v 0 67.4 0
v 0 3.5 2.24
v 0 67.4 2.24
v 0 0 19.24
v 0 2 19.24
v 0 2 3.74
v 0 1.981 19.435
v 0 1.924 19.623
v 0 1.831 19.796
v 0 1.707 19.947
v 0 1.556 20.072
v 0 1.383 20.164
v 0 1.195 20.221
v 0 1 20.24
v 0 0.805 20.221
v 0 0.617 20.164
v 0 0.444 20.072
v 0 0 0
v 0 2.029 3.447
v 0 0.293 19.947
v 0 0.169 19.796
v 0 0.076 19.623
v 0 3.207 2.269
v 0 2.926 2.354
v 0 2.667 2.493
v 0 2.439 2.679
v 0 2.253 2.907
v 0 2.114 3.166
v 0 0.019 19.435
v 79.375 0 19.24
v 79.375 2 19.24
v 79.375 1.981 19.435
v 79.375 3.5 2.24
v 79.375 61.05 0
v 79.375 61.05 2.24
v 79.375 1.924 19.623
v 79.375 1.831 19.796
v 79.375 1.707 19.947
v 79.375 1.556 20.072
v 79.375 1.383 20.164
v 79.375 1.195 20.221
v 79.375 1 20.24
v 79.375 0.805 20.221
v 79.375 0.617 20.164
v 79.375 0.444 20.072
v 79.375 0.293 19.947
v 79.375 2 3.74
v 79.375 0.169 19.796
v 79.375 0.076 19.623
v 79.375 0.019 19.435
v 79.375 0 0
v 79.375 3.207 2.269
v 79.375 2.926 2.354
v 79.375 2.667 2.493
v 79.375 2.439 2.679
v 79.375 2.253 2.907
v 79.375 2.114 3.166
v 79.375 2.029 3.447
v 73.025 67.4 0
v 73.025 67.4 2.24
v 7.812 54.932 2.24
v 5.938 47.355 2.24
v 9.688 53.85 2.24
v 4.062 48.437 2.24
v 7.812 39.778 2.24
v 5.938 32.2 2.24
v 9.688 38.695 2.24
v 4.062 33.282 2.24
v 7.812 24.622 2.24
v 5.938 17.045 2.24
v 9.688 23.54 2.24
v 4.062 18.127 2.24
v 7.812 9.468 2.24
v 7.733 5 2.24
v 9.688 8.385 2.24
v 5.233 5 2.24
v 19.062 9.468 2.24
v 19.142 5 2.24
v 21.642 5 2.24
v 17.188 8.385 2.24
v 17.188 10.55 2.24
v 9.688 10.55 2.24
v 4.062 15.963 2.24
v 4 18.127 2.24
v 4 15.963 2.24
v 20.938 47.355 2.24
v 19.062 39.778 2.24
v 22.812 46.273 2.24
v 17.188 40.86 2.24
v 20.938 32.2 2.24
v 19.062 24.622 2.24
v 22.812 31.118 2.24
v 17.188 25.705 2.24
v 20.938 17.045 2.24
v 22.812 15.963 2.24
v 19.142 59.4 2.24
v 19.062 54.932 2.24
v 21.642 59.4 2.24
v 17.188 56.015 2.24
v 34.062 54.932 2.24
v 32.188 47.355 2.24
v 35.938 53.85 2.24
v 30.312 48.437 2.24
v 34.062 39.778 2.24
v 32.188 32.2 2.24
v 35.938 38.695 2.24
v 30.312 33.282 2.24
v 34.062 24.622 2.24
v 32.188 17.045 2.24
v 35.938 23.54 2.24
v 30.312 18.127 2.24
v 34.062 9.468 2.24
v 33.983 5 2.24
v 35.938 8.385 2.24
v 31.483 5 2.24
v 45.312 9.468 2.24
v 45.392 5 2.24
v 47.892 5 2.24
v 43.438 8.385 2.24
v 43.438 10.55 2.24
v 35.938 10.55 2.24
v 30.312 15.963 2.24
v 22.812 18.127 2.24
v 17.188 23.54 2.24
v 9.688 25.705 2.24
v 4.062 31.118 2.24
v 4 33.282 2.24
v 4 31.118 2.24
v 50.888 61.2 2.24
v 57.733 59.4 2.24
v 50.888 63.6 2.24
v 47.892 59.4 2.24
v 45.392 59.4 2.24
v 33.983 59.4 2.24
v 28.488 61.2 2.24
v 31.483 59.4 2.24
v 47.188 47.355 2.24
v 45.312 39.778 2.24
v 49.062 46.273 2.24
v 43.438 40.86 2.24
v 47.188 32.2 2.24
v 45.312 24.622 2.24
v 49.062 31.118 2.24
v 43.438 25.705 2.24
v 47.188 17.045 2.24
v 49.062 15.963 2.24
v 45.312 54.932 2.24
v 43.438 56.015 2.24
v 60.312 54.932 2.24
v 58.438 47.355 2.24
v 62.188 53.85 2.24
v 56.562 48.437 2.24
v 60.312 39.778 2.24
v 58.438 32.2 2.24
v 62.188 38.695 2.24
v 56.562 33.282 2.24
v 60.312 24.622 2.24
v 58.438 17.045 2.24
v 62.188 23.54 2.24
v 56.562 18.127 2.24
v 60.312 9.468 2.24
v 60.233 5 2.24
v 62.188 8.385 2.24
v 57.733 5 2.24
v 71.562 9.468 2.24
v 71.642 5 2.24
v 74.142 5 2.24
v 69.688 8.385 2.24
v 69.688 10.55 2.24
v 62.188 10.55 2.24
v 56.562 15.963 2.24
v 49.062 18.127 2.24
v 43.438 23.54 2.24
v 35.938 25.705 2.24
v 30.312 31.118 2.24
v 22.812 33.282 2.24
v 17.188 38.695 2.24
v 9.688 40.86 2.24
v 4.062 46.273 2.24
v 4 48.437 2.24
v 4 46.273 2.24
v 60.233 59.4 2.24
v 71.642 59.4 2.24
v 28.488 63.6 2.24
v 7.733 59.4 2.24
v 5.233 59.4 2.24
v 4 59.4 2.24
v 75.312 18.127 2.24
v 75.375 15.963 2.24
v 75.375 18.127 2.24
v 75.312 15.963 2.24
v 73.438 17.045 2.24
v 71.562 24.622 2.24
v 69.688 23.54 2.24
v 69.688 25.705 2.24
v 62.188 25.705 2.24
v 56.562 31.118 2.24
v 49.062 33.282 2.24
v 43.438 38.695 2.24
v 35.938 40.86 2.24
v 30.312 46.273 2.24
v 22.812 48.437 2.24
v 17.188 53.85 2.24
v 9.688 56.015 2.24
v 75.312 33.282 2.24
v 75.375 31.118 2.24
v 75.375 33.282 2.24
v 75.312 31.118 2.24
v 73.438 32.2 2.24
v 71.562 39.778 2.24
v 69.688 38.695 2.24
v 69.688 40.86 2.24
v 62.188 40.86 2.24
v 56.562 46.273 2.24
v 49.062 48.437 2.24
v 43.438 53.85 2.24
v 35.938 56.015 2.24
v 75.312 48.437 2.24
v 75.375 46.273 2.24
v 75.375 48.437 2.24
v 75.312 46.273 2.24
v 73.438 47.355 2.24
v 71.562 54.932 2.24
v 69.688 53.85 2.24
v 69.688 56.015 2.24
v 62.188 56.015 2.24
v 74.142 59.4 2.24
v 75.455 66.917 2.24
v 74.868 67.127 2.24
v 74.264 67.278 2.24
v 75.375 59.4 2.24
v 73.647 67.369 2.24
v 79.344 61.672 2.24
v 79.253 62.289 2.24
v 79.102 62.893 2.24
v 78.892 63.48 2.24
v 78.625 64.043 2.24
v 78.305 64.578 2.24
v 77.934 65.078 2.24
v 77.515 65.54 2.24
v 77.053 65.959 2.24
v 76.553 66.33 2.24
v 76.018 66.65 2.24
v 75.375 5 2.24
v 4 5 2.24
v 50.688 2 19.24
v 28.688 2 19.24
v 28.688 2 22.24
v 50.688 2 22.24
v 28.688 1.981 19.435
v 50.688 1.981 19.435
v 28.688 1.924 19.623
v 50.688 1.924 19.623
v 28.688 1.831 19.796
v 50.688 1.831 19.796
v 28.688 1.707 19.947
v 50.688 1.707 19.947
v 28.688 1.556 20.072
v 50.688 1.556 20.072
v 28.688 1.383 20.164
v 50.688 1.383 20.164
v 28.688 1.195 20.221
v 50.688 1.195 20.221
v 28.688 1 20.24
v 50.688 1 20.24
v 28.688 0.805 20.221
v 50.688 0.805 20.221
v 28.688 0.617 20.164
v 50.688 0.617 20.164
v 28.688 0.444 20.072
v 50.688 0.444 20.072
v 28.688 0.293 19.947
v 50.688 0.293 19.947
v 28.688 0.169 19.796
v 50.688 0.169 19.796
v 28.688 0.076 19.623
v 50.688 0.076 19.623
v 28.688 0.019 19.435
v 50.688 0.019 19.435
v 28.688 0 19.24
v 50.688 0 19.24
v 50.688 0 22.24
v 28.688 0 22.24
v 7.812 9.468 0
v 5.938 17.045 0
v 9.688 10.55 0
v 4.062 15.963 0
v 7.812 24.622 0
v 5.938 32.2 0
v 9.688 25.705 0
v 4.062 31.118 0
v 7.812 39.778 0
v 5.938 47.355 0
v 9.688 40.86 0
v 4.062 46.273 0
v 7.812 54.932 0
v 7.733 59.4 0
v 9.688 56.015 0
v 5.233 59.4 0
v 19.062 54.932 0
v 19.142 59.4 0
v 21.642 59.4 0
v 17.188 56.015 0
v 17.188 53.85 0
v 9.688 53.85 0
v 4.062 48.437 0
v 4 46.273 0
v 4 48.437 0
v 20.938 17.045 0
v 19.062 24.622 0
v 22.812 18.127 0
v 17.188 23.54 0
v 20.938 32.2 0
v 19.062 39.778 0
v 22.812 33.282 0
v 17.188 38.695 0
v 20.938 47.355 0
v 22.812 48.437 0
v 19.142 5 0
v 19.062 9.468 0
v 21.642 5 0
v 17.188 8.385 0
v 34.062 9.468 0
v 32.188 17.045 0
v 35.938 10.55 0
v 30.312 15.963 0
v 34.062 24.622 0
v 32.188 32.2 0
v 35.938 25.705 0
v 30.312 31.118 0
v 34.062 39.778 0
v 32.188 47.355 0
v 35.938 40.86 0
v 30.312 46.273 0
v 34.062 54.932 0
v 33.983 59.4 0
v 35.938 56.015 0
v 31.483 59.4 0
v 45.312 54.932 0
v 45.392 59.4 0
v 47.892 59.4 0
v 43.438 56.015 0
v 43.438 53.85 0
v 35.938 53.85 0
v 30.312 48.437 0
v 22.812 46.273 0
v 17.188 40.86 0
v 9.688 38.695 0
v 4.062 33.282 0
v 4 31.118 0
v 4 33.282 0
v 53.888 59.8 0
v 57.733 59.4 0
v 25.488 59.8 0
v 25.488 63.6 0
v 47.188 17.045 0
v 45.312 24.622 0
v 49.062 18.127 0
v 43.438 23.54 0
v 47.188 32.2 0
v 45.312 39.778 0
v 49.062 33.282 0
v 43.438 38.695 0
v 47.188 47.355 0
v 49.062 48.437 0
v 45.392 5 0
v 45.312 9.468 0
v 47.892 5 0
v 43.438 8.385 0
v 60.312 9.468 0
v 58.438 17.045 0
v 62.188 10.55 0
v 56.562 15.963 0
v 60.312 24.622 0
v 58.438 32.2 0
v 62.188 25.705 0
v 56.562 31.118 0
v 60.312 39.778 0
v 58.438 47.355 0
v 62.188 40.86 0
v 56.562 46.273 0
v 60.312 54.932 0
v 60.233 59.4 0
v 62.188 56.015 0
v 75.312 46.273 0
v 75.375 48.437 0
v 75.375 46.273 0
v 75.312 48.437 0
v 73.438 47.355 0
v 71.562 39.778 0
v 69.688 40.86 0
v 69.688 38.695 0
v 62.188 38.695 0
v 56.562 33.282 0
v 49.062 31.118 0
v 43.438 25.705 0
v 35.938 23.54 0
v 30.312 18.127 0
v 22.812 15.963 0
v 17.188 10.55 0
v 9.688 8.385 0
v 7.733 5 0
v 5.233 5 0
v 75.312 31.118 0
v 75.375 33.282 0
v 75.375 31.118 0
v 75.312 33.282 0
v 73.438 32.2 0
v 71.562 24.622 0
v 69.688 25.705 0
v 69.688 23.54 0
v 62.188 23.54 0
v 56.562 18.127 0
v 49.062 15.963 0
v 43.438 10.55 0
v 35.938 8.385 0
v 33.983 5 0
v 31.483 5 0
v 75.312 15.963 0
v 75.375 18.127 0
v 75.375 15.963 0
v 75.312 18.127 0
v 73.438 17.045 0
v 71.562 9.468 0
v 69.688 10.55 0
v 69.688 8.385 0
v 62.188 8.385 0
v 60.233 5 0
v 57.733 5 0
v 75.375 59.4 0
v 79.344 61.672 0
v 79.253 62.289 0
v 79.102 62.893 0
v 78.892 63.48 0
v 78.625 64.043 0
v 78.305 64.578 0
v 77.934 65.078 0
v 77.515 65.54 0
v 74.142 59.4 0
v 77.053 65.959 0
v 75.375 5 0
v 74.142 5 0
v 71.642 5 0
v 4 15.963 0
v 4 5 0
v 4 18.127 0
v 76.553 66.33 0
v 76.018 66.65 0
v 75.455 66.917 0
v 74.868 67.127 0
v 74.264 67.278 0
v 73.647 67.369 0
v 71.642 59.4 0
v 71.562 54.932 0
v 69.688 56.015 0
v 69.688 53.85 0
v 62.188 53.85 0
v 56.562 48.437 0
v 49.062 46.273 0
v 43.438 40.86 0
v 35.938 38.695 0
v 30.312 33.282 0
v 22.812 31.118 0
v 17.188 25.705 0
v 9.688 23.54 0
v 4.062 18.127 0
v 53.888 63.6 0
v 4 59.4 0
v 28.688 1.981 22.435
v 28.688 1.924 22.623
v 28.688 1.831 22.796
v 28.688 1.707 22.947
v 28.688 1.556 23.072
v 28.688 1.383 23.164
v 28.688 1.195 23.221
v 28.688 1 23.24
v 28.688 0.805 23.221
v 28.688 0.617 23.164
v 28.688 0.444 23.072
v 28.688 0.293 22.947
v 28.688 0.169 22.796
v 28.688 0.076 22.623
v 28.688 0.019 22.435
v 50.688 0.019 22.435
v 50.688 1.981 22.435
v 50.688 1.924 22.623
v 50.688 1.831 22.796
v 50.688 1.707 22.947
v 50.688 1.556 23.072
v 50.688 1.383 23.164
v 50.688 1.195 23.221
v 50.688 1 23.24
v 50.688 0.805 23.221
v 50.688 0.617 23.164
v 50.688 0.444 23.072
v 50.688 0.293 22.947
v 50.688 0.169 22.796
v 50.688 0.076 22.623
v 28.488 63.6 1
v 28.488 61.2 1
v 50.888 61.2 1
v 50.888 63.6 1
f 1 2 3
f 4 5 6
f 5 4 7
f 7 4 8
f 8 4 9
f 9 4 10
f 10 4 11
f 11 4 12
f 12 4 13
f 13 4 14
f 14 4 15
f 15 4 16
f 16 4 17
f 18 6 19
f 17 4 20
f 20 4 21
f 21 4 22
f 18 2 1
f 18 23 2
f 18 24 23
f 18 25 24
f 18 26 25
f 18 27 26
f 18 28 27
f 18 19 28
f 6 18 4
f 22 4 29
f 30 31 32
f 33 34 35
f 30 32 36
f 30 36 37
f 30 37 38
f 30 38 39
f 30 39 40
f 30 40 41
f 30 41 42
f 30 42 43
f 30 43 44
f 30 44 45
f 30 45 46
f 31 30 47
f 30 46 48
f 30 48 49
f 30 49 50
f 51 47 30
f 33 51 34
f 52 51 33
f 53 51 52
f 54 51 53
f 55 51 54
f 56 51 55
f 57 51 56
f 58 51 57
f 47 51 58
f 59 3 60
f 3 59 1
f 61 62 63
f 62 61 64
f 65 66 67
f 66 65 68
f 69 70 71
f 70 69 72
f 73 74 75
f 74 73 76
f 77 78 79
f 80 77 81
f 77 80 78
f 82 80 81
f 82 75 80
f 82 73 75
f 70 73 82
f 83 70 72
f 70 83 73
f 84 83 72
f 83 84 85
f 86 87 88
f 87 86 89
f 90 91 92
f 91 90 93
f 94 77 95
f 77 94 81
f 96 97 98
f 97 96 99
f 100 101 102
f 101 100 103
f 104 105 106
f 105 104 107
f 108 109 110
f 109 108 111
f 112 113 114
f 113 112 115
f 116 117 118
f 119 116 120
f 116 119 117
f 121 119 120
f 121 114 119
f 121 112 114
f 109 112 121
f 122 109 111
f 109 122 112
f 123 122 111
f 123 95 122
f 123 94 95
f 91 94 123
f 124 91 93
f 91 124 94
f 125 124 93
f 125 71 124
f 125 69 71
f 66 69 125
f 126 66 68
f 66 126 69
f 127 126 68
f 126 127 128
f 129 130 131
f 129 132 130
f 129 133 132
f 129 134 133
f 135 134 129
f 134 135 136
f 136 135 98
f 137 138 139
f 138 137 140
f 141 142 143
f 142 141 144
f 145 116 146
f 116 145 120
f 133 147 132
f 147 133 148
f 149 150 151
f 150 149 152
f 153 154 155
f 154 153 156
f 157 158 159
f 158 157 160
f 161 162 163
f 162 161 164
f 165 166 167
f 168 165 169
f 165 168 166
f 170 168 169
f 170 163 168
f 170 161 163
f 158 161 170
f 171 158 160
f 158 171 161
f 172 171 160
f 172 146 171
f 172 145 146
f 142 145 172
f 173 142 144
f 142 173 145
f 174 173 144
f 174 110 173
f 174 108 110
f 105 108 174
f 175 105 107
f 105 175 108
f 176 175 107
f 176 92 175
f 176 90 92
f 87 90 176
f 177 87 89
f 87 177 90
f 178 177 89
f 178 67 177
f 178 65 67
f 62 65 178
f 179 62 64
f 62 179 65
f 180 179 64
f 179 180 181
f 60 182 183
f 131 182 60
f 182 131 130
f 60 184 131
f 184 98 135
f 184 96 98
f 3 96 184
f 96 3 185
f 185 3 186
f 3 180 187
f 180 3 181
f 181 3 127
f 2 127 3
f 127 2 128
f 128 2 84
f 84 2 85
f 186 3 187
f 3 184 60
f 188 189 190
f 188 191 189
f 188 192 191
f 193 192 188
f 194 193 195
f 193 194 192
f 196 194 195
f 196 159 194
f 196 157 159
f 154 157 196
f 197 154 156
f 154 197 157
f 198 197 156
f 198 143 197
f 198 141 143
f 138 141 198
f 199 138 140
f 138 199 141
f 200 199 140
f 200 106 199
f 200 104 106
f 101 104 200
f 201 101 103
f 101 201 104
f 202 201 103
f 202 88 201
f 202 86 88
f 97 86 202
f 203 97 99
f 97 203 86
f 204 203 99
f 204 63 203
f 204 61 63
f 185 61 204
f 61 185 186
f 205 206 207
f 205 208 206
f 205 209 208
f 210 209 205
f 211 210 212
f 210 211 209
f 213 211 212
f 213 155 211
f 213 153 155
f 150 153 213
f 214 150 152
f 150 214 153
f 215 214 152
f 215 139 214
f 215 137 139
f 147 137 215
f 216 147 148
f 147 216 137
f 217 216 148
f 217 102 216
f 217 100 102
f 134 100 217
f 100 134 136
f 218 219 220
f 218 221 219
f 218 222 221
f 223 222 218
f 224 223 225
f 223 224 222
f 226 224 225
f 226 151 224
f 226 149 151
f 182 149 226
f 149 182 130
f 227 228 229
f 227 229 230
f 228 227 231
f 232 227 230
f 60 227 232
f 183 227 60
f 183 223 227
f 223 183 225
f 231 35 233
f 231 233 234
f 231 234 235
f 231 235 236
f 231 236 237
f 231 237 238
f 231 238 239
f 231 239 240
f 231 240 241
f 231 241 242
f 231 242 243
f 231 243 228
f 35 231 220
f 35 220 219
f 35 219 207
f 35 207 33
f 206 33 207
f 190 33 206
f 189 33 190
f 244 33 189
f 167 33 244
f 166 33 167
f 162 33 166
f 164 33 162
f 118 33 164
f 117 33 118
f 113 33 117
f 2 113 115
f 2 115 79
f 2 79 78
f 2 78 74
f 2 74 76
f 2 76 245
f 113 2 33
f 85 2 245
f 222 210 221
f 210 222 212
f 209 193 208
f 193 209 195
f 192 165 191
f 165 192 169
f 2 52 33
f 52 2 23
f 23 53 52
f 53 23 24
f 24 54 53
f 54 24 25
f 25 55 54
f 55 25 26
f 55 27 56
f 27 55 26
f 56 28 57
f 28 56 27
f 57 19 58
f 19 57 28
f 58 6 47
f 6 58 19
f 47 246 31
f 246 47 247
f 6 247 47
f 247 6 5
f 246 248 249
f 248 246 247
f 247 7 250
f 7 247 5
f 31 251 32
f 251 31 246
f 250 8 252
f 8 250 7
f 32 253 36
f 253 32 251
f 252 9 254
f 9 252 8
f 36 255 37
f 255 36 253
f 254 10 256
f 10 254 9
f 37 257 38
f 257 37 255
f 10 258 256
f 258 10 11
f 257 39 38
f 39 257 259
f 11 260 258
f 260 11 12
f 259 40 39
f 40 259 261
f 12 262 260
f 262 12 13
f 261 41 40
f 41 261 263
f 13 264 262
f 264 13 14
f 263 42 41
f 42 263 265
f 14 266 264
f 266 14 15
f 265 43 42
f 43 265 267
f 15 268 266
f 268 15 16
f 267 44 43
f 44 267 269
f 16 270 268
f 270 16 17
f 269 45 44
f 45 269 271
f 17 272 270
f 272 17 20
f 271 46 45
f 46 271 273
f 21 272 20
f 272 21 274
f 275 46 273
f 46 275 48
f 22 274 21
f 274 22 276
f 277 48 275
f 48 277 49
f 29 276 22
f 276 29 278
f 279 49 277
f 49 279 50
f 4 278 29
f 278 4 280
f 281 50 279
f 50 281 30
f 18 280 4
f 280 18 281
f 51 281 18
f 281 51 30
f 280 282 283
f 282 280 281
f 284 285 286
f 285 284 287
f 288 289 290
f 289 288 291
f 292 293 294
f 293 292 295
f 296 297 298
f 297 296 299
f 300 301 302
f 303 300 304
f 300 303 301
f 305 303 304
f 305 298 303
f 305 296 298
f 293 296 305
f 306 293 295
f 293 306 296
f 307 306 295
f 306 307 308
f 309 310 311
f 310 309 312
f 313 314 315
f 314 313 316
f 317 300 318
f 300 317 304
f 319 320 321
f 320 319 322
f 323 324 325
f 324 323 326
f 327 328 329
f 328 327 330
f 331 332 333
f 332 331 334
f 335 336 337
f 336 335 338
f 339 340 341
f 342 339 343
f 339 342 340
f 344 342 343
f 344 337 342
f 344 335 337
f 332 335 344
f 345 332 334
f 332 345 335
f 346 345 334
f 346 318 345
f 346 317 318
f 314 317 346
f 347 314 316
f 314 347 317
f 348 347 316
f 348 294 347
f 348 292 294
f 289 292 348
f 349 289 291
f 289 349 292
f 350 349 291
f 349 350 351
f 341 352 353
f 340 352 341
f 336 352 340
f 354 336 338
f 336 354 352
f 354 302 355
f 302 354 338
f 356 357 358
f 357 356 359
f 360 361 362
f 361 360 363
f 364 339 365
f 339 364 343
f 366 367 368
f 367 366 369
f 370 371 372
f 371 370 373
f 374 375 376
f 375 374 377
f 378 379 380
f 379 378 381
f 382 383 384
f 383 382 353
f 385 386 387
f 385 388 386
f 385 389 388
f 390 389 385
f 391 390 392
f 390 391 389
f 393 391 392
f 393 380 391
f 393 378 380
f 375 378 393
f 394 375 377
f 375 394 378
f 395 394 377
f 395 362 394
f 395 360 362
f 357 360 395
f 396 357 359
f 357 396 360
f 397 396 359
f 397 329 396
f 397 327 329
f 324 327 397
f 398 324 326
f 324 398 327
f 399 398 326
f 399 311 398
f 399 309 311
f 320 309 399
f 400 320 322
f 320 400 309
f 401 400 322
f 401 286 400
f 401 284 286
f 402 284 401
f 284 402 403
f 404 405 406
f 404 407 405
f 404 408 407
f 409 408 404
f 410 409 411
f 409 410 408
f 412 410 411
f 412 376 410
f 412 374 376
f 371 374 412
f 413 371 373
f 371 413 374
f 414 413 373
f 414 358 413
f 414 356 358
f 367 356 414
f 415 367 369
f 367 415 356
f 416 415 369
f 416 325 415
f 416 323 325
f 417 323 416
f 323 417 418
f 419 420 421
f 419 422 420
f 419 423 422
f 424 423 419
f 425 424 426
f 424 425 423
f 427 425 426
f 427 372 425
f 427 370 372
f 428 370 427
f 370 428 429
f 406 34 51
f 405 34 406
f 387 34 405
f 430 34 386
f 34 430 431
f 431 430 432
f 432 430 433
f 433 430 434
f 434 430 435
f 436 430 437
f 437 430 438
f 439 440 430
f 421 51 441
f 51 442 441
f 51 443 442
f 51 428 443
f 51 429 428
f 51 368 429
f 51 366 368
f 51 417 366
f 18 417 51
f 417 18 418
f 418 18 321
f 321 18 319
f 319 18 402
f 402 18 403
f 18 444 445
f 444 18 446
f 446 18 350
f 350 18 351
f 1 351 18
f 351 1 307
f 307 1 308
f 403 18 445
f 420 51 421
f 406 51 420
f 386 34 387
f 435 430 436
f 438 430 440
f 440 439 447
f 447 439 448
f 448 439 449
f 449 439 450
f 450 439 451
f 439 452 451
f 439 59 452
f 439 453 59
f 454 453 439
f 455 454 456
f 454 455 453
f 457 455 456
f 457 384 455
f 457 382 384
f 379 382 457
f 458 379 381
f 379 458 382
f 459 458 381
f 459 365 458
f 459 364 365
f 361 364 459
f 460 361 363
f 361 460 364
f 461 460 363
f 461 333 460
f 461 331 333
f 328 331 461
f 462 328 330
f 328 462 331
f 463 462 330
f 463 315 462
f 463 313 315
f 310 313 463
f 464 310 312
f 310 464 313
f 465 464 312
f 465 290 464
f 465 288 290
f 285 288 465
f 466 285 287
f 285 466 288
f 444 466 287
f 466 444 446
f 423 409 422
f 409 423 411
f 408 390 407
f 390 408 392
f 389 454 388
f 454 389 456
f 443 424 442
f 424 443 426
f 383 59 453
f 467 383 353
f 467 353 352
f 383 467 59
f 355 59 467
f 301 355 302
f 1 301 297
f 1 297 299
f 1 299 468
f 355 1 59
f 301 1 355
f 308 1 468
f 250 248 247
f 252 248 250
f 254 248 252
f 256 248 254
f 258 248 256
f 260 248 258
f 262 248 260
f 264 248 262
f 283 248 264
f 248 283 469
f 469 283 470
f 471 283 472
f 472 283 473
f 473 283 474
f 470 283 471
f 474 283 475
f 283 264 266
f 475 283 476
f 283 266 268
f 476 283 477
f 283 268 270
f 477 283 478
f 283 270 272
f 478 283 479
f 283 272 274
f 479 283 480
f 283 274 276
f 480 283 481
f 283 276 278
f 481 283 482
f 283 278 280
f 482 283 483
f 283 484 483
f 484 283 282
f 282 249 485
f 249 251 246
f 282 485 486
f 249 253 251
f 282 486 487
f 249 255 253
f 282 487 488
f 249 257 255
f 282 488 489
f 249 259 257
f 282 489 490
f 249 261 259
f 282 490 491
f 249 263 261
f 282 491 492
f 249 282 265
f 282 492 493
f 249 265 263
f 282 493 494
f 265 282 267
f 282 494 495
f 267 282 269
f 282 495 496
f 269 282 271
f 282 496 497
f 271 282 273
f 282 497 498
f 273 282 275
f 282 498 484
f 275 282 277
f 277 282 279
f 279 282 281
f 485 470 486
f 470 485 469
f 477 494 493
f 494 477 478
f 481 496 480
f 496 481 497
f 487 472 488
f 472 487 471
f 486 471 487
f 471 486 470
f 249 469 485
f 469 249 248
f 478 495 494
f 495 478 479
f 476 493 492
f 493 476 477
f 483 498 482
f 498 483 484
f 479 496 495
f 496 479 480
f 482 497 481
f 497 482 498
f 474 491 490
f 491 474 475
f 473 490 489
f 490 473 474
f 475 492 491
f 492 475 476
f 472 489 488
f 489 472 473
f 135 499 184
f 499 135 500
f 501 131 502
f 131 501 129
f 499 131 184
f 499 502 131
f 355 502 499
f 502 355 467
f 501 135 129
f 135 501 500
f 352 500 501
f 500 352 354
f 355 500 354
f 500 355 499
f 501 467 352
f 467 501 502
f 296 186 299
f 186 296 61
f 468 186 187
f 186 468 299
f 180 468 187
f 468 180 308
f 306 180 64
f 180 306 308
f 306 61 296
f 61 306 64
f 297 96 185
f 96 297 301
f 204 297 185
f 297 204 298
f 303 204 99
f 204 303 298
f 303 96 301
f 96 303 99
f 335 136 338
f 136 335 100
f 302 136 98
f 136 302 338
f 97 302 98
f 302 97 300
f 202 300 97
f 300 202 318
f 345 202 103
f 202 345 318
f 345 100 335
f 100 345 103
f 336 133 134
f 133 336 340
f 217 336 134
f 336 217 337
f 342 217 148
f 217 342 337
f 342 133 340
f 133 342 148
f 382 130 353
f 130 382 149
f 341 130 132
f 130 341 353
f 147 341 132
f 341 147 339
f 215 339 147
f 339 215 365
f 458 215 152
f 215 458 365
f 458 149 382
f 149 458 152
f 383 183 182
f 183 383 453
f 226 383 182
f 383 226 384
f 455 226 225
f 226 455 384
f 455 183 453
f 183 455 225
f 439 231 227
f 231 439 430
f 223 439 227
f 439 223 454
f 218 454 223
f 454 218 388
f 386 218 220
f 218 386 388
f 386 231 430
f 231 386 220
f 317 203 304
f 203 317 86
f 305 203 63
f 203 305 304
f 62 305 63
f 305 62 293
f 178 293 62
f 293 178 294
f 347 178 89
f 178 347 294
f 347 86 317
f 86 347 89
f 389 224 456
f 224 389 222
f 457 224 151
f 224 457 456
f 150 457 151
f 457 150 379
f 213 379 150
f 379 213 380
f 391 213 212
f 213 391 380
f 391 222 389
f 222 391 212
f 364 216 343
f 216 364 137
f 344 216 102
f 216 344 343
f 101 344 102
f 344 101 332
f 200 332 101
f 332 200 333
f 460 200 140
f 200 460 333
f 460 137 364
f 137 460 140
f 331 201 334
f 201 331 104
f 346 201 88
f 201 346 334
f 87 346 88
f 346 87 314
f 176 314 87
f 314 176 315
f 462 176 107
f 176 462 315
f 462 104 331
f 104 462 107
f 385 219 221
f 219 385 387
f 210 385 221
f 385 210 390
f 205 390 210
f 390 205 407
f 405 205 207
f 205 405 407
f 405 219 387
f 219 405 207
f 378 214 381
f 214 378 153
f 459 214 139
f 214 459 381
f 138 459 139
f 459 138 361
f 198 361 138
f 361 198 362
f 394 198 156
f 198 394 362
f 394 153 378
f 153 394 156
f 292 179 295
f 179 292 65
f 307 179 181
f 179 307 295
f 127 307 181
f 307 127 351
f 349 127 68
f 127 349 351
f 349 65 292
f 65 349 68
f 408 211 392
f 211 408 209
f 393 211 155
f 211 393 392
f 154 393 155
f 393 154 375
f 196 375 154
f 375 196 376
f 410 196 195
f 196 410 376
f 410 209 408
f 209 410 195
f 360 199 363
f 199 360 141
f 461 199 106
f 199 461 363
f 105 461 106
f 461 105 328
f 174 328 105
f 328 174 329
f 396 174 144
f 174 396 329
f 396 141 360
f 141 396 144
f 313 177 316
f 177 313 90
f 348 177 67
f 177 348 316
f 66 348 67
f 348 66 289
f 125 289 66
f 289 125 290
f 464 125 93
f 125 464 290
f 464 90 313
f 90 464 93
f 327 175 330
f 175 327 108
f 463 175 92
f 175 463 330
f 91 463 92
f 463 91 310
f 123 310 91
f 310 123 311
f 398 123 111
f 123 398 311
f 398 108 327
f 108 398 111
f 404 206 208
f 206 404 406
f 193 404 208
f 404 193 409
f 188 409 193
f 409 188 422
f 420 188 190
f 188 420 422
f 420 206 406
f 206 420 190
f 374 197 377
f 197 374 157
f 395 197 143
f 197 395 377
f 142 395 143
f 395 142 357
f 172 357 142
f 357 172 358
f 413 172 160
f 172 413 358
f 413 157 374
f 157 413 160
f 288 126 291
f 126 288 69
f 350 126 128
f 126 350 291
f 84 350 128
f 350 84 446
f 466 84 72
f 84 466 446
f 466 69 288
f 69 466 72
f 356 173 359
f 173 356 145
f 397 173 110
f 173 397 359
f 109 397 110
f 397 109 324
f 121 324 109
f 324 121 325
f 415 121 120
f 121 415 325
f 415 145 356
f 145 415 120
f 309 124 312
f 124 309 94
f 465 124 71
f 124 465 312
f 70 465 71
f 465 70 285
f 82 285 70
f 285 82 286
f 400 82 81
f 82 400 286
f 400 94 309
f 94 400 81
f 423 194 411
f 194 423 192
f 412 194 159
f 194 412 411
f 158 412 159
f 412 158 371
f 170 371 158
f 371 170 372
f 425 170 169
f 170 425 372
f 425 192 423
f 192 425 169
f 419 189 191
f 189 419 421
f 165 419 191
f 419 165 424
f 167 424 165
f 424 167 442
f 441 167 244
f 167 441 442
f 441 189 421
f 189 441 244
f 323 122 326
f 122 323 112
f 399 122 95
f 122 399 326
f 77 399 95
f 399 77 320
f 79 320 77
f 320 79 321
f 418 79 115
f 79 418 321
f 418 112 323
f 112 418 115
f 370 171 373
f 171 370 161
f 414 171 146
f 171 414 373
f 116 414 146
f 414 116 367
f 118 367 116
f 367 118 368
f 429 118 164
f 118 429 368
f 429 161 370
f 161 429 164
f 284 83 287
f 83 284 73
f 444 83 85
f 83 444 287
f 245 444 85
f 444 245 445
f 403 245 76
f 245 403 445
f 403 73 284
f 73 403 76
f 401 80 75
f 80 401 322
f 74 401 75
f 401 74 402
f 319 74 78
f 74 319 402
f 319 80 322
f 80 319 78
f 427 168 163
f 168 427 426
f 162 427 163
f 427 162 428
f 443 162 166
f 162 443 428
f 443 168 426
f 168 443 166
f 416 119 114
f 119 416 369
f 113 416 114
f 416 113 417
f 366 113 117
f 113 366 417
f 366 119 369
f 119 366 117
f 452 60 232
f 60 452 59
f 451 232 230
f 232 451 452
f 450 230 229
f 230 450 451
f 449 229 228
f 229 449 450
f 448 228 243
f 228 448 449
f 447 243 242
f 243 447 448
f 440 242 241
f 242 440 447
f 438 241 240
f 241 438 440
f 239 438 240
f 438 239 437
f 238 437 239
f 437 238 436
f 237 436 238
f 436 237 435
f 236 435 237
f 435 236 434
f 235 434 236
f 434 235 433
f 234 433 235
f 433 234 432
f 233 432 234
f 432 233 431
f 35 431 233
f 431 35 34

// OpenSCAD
// Wake flat v2: built on the v6 design. One-piece L riser printed flat, plate on the bed, lip standing up.
// Kept exactly from v6: plate size (65.4 mm deep x width), 2.24 mm plate (2 + 0.24 extra back layers),
//   hex size/gap/borders/grid positions, the small W, and the lip size (2 mm thick, 20 mm deep from the front face).
// New: wall tabs on the lip top that rest by gravity in slots near the free edge of the next plate.
// No ridges, channels or bands.
//
// Axes: x = width, y = plate depth (y=0 is the lip end of the plate, v6's z_bot end), z = up (plate front face up).
// The x axis is mirrored relative to v6's panel coordinates so the part is the same physical part, not a mirror image.

// Extension piece: exactly 3 1/8 in wide, one tab/slot at centre, no W.
width       = 3.125 * 25.4;                // 79.375 mm

// v6 plate: back_height 70.5 - panel_top_trim 1.0 - boss_h 4.1
panel_h  = 65.4;
edge_extra = 2;                           // extra solid border past the v6 plate edge (free-edge side only); hex grid and slot positions unchanged
plate_d  = panel_h + edge_extra;
wall     = 2;                             // lip thickness (v6 `wall`)
back_extra = 0.24;                        // v6: 2 * 0.12 extra layers on the back
plate_t  = wall + back_extra;
bottom_lip_depth = 20;                    // v6 lip depth, measured from the back face's y datum
lip_h    = bottom_lip_depth + back_extra; // lip height from the bed: sticks out 18 mm past the front face, same as v6
fillet_in = 1.5;                          // where the lip meets the plate

// hex grid, same as v6
hex_size   = 15;
hex_gap    = 2.5;
border_x   = 4;
border_top = 6;
band_h     = 5;                           // v6 band_v 2 + ramp_h 3: hex area starts this far from the lip end

// small W, same as v6: one hex at the far corner, max x and max v6-z
small_w_on     = false;
small_w_w      = 0.85;
small_w_h      = 0.62;
small_w_stroke = 2.0;
letter_flip    = true;

// bottom piece only: round the free-edge corner at max x (bottom right) for the case's rounded inner corner
bottom_piece  = true; 
corner_cut_r  = 6.35;                     // 1/4 in

// tabs on the lip top, slots in the plate
tab_len     = 22;
tab_h       = 3;                          // tabs stick up past lip_h
tab_clear   = 0.2;                        // slot clearance per side
slot_from_edge = 3;                       // free edge to slot centre line (hex area ends border_top = 6 from the edge)
ramp_depth = 1.0;                         // funnel depth into the plate from the back face, leaves plate_t - ramp_depth straight
ramp_run_y = 1.4;                         // flare on the hex side of each slot only, none on the free-edge side (stops short of the hex area at 1.8 mm)
ramp_run_x = 3.0;                         // flare past each end, gentler lead-in

// shingle step used by the storage case: how far each piece sits along y from the one below when stacked tight
// (the lip wall and its fillet need 3.5 mm, plus 0.1)
stack_step = 3.6;
assert(stack_step >= wall + fillet_in, "stack_step too small to clear the lip wall and fillet");

tab_xs = [width / 2];                     // single tab, centred
left_end  = tab_xs[0] - (tab_len / 2 + tab_clear);   // free stretches either side of the slots, where the text goes
right_beg = tab_xs[0] + (tab_len / 2 + tab_clear);

// engraved logo and version on the front face, in the solid strip along the free edge, either side of the slots
engrave      = false;
brand_text   = "BlueBytes";
version_text = "Bedrock v1";
tag_size     = 3.5;
tag_depth    = 0.7;
tag_font     = "Liberation Sans:style=Bold";

$fn = 32;

function cells(w, h) =
    let (pitch = hex_size + hex_gap, step_x = pitch * 0.75, step_z = pitch * 0.866,
         cx = w / 2, cz = h / 2,
         ncols = ceil(w / (2 * step_x)) + 2, nrows = ceil(h / (2 * step_z)) + 2)
    [for (col = [-ncols : ncols]) for (row = [-nrows : nrows])
        let (parity = ((col % 2) + 2) % 2,
             x = cx + col * step_x,
             z = cz + row * step_z + (parity == 0 ? 0 : step_z / 2))
        [x, z]];

function corner_cell(w, h) =
    let (c = [for (p = cells(w, h)) if (p[0] - hex_size / 2 >= 0 && p[0] + hex_size / 2 <= w && p[1] - hex_size / 2 >= 0 && p[1] + hex_size / 2 <= h) p],
         best = max([for (p = c) p[0] + p[1]]))
    [for (p = c) if (p[0] + p[1] == best) p][0];

module w_shape2d(lw, lh, stroke) {
    f = letter_flip ? -1 : 1;
    pts = [[-lw / 2, f * lh / 2], [-lw / 4, -f * lh / 2], [0, f * lh * 0.15], [lw / 4, -f * lh / 2], [lw / 2, f * lh / 2]];
    for (i = [0 : 3]) hull() {
        translate(pts[i]) circle(d = stroke, $fn = 24);
        translate(pts[i + 1]) circle(d = stroke, $fn = 24);
    }
}

// the v6 hex pattern as a 2D cut; the cell grid is symmetric in x, only the W cell is mirrored
module hex_cut2d(w, h) {
    cc = corner_cell(w, h);
    difference() {
        intersection() {
            for (c = cells(w, h)) translate(c) circle(d = hex_size, $fn = 6);
            square([w, h]);
        }
        if (small_w_on)
            translate([w - cc[0], cc[1]]) w_shape2d(hex_size * small_w_w, hex_size * small_w_h, small_w_stroke);
    }
}

// (y, z) profile of plate + lip + fillet, extruded along x
module body() {
    r = wall / 2;
    rotate([90, 0, 90]) linear_extrude(width) union() {
        square([plate_d, plate_t]);
        square([wall, lip_h - r]);
        translate([r, lip_h - r]) circle(r = r, $fn = 32);       // rounded lip top, as in v6
        difference() {
            translate([wall - 0.01, plate_t - 0.01]) square([fillet_in + 0.01, fillet_in + 0.01]);
            translate([wall + fillet_in, plate_t + fillet_in]) circle(r = fillet_in);
        }
    }
}

module tabs() {
    r = wall / 2;
    z0 = lip_h - r;                       // starts inside the rounded lip top
    for (x = tab_xs)
        translate([x - tab_len / 2, 0, 0]) rotate([90, 0, 90]) linear_extrude(tab_len) union() {
            translate([0, z0]) square([wall, tab_h]);                         // up to where the round starts
            translate([r, lip_h + tab_h - r]) circle(r = r, $fn = 32);        // rounded tab top, same radius as the lip
        }
}

module slots() {
    sw = wall + 2 * tab_clear;
    sl = tab_len + 2 * tab_clear;
    y0 = panel_h - slot_from_edge - sw / 2;
    for (x = tab_xs) {
        translate([x - sl / 2, y0, -1]) cube([sl, sw, plate_t + 2]);
        // lead-in funnel on the back face (z=0, the bed side), the face the tab enters from
        hull() {
            translate([x - sl / 2, y0, ramp_depth - 0.01]) cube([sl, sw, 0.01]);
            translate([x - sl / 2 - ramp_run_x, y0 - ramp_run_y, -0.01]) cube([sl + 2 * ramp_run_x, sw + ramp_run_y, 0.01]);
        }
    }
}

// text is centred on its cap height in the solid strip between the hex area and the free edge
// (cap height of Liberation Sans Bold = 0.954 x size; the text is turned 180 deg, so its up is -y)
cap_h     = 0.954 * tag_size;
strip_mid = ((panel_h - border_top) + plate_d) / 2;
module tag_text(txt, x_pos) {
    translate([x_pos, strip_mid + cap_h / 2, plate_t - tag_depth]) rotate([0, 0, 180])
        linear_extrude(height = tag_depth + 0.5)
            text(txt, size = tag_size, font = tag_font, halign = "center", valign = "baseline");
}

module corner_cutter() {
    translate([width - corner_cut_r, plate_d - corner_cut_r, -1]) linear_extrude(plate_t + 2)
        difference() {
            square([corner_cut_r + 1, corner_cut_r + 1]);
            circle(r = corner_cut_r, $fn = 64);
        }
}

module riser() {
    difference() {
        union() { body(); tabs(); }
        translate([border_x, band_h, -1]) linear_extrude(plate_t + 2)
            hex_cut2d(width - 2 * border_x, panel_h - band_h - border_top);
        slots();
        if (bottom_piece) corner_cutter();
        if (engrave) {
            tag_text(brand_text, (border_x + left_end) / 2);
            tag_text(version_text, (right_beg + width - border_x) / 2);
        }
    }
}

// two boxes over the engraved text areas, in the riser's own coordinates, to load into the slicer as modifiers
// (ironing is a slicer setting; this just marks where). "riser" | "iron_modifiers"
output = "riser";
module iron_boxes() {
    for (x0 = [border_x + 1, right_beg + 1])
        translate([x0, panel_h - border_top, 0])
            cube([left_end - border_x - 2, plate_d - (panel_h - border_top), plate_t + 0.7]);
}

render_riser = true;
if (render_riser) { if (output == "iron_modifiers") iron_boxes(); else riser(); }
